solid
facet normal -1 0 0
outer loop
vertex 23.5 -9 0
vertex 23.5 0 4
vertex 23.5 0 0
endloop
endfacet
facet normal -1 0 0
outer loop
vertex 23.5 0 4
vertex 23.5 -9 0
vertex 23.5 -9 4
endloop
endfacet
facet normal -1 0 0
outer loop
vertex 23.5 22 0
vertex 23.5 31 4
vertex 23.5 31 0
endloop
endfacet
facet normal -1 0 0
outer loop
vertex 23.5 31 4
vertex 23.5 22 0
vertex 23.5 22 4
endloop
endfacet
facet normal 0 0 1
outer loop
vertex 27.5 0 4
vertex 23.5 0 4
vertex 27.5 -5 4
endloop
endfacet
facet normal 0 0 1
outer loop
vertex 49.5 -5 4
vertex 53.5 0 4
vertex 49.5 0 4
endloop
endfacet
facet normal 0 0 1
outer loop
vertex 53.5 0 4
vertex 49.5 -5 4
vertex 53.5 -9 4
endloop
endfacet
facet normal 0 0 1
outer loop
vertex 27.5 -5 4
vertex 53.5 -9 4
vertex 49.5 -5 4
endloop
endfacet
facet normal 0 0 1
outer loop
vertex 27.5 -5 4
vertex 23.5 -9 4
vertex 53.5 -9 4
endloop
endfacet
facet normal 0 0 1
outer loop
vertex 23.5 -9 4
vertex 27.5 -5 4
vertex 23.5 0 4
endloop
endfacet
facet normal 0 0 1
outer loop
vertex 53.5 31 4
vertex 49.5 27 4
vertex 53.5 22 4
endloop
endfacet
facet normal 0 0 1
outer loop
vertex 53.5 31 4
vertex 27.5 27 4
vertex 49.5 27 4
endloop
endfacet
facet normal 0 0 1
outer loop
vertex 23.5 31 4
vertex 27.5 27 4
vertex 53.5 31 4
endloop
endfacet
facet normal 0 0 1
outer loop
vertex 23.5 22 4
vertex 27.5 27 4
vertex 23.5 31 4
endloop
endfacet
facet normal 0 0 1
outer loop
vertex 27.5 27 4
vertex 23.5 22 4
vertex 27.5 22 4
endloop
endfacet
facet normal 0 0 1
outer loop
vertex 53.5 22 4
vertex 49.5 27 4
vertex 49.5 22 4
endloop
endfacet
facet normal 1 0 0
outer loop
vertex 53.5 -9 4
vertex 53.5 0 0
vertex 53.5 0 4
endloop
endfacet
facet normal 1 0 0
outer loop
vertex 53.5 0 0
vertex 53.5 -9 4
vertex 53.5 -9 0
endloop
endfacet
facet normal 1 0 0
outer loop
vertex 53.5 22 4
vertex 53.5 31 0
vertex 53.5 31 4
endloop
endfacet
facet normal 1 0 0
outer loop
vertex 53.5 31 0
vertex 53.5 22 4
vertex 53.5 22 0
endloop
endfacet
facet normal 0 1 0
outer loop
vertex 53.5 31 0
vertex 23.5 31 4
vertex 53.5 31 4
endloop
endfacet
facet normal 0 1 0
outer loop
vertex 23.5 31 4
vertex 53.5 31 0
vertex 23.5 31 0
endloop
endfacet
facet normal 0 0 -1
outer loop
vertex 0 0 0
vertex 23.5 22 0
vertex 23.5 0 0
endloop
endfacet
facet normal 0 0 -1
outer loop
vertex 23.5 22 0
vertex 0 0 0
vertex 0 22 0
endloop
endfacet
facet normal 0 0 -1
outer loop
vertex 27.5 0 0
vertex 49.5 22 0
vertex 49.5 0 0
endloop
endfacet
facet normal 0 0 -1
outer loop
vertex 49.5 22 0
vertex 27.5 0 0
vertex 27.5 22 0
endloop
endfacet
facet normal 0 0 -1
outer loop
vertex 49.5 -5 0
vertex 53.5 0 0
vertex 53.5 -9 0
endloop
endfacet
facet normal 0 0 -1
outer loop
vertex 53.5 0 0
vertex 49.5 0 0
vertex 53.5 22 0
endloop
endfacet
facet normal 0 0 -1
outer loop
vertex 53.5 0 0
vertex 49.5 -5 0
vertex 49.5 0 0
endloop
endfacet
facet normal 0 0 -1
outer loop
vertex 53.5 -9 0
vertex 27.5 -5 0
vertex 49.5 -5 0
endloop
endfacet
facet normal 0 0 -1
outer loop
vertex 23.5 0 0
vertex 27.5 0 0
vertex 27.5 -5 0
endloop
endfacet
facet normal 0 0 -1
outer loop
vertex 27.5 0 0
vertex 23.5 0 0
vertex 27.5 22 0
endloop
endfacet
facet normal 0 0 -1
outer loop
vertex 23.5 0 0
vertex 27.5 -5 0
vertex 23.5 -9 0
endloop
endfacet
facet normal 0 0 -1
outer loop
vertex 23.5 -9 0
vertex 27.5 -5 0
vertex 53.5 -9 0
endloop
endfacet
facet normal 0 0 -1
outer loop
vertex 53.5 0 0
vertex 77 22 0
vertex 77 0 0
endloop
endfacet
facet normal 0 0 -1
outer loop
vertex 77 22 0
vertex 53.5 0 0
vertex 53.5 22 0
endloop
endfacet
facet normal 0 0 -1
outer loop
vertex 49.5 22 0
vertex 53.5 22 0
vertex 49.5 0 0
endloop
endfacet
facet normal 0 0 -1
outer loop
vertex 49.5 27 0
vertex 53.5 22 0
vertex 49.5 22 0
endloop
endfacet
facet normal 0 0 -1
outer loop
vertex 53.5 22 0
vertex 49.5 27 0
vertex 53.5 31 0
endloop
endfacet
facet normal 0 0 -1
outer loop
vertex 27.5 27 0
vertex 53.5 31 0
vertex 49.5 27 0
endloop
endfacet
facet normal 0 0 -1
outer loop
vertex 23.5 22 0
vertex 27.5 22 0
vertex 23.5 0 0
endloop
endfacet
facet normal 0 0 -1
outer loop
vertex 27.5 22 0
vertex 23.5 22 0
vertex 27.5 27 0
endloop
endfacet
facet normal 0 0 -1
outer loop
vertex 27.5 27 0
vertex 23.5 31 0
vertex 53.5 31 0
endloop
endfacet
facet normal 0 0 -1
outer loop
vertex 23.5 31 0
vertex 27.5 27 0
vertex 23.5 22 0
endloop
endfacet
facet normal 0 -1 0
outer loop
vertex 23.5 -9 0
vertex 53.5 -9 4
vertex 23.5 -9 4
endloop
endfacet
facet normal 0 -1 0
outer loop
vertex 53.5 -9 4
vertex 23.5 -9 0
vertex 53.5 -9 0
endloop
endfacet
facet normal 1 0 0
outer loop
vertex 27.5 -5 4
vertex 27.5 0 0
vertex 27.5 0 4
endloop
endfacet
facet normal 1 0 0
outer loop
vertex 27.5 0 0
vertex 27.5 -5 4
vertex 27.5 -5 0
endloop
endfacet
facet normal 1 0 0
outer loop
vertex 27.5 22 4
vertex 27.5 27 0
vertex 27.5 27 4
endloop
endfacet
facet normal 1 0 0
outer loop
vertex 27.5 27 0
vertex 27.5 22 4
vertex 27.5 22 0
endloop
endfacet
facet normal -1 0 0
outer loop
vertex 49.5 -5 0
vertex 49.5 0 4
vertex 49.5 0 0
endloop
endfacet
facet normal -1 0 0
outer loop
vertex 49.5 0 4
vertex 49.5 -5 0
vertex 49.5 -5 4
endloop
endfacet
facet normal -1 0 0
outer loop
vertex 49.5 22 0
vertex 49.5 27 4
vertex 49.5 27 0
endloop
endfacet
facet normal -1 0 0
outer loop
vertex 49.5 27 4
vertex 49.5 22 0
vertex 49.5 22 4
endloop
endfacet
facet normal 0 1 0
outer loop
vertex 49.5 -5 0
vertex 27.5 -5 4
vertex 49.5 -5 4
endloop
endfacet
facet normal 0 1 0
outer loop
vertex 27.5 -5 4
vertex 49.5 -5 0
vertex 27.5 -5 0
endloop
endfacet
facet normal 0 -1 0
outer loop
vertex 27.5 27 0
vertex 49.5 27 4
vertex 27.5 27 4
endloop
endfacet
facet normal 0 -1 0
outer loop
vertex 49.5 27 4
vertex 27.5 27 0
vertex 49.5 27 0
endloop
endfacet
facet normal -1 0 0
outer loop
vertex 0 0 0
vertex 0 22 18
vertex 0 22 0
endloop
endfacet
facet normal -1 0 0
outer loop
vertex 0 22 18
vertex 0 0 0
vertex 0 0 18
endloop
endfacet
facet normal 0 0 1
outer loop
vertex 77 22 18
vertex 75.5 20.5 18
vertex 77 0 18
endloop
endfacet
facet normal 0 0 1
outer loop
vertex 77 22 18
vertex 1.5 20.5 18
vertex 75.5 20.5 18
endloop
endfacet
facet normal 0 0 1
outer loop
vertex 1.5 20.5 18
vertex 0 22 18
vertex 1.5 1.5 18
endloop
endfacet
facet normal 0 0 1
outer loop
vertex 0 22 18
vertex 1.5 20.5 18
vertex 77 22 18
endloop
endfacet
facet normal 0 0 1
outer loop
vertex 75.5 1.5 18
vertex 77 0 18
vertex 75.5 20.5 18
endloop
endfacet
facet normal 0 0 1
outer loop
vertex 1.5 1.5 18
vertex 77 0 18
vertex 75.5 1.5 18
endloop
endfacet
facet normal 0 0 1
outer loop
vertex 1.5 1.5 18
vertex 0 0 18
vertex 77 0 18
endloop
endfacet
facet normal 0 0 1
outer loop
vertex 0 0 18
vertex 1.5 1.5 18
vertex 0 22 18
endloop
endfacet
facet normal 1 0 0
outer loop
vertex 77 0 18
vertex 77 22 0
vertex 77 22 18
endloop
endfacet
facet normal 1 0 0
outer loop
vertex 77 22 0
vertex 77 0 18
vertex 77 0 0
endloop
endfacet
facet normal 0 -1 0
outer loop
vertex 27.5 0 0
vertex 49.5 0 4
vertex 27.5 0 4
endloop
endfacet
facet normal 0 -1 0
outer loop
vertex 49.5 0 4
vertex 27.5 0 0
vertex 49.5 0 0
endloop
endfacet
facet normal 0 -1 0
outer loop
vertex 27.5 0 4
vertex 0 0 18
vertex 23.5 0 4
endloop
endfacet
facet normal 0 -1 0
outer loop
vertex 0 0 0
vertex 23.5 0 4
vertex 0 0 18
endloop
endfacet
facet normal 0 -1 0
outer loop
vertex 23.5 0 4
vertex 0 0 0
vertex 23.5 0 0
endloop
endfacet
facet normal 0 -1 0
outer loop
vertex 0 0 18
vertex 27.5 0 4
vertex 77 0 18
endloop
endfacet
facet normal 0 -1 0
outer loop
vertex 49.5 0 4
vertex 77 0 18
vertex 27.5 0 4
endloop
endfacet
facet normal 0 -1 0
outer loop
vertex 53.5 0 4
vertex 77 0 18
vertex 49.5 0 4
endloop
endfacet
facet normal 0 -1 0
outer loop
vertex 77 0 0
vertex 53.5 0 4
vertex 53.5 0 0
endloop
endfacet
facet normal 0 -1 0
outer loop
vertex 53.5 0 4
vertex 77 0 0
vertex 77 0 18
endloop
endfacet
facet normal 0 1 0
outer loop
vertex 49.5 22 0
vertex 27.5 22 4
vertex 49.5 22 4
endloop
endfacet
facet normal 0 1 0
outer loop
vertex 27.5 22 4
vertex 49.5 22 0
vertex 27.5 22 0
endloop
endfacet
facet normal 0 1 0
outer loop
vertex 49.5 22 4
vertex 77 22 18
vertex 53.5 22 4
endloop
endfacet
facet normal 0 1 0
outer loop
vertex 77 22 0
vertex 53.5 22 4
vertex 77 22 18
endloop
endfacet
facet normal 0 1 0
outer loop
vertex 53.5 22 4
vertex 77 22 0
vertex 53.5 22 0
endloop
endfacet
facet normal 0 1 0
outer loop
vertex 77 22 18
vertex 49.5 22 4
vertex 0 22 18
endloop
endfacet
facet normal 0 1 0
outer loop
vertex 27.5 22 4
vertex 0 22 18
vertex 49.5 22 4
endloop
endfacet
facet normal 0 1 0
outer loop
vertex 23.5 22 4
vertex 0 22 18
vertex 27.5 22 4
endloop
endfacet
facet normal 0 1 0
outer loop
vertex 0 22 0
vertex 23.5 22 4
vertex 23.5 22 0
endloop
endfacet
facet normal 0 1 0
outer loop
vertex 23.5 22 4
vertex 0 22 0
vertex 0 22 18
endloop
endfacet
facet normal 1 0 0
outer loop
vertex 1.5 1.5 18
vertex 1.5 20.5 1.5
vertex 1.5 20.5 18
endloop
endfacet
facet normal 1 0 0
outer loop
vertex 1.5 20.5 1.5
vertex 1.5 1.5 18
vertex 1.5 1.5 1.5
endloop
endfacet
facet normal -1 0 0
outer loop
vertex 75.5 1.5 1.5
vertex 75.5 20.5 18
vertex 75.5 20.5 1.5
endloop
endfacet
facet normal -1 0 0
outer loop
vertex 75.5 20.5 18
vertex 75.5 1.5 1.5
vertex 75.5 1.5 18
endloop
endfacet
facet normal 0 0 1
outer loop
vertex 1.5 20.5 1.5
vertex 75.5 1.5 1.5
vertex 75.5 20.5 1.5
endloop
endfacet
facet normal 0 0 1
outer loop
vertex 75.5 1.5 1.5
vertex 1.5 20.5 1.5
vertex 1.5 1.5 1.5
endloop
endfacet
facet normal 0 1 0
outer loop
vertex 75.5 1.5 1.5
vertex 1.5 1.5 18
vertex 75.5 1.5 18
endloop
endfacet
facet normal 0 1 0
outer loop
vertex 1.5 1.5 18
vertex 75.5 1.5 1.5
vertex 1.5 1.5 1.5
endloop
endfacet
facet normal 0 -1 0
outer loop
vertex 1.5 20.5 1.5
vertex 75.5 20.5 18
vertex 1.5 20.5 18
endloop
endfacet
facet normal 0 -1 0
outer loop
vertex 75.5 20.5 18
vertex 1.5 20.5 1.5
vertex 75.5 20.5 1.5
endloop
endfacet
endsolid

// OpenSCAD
difference(){
    union(){
        cube([(74 + 3), 22, 18]);
        difference(){
            translate([(77 / 2 - 30 / 2), (22 / 2 - 40 / 2), 0]){
                cube([30, 40, 4]);
            }
            translate([(77 / 2 - 22 / 2), (22 / 2 - 32 / 2), 0]){
                cube([22, 32, 4]);
            }
        }
    }
    translate([1.5, 1.5, 1.5]){
        cube([74, 19, 22]);
    }
}
